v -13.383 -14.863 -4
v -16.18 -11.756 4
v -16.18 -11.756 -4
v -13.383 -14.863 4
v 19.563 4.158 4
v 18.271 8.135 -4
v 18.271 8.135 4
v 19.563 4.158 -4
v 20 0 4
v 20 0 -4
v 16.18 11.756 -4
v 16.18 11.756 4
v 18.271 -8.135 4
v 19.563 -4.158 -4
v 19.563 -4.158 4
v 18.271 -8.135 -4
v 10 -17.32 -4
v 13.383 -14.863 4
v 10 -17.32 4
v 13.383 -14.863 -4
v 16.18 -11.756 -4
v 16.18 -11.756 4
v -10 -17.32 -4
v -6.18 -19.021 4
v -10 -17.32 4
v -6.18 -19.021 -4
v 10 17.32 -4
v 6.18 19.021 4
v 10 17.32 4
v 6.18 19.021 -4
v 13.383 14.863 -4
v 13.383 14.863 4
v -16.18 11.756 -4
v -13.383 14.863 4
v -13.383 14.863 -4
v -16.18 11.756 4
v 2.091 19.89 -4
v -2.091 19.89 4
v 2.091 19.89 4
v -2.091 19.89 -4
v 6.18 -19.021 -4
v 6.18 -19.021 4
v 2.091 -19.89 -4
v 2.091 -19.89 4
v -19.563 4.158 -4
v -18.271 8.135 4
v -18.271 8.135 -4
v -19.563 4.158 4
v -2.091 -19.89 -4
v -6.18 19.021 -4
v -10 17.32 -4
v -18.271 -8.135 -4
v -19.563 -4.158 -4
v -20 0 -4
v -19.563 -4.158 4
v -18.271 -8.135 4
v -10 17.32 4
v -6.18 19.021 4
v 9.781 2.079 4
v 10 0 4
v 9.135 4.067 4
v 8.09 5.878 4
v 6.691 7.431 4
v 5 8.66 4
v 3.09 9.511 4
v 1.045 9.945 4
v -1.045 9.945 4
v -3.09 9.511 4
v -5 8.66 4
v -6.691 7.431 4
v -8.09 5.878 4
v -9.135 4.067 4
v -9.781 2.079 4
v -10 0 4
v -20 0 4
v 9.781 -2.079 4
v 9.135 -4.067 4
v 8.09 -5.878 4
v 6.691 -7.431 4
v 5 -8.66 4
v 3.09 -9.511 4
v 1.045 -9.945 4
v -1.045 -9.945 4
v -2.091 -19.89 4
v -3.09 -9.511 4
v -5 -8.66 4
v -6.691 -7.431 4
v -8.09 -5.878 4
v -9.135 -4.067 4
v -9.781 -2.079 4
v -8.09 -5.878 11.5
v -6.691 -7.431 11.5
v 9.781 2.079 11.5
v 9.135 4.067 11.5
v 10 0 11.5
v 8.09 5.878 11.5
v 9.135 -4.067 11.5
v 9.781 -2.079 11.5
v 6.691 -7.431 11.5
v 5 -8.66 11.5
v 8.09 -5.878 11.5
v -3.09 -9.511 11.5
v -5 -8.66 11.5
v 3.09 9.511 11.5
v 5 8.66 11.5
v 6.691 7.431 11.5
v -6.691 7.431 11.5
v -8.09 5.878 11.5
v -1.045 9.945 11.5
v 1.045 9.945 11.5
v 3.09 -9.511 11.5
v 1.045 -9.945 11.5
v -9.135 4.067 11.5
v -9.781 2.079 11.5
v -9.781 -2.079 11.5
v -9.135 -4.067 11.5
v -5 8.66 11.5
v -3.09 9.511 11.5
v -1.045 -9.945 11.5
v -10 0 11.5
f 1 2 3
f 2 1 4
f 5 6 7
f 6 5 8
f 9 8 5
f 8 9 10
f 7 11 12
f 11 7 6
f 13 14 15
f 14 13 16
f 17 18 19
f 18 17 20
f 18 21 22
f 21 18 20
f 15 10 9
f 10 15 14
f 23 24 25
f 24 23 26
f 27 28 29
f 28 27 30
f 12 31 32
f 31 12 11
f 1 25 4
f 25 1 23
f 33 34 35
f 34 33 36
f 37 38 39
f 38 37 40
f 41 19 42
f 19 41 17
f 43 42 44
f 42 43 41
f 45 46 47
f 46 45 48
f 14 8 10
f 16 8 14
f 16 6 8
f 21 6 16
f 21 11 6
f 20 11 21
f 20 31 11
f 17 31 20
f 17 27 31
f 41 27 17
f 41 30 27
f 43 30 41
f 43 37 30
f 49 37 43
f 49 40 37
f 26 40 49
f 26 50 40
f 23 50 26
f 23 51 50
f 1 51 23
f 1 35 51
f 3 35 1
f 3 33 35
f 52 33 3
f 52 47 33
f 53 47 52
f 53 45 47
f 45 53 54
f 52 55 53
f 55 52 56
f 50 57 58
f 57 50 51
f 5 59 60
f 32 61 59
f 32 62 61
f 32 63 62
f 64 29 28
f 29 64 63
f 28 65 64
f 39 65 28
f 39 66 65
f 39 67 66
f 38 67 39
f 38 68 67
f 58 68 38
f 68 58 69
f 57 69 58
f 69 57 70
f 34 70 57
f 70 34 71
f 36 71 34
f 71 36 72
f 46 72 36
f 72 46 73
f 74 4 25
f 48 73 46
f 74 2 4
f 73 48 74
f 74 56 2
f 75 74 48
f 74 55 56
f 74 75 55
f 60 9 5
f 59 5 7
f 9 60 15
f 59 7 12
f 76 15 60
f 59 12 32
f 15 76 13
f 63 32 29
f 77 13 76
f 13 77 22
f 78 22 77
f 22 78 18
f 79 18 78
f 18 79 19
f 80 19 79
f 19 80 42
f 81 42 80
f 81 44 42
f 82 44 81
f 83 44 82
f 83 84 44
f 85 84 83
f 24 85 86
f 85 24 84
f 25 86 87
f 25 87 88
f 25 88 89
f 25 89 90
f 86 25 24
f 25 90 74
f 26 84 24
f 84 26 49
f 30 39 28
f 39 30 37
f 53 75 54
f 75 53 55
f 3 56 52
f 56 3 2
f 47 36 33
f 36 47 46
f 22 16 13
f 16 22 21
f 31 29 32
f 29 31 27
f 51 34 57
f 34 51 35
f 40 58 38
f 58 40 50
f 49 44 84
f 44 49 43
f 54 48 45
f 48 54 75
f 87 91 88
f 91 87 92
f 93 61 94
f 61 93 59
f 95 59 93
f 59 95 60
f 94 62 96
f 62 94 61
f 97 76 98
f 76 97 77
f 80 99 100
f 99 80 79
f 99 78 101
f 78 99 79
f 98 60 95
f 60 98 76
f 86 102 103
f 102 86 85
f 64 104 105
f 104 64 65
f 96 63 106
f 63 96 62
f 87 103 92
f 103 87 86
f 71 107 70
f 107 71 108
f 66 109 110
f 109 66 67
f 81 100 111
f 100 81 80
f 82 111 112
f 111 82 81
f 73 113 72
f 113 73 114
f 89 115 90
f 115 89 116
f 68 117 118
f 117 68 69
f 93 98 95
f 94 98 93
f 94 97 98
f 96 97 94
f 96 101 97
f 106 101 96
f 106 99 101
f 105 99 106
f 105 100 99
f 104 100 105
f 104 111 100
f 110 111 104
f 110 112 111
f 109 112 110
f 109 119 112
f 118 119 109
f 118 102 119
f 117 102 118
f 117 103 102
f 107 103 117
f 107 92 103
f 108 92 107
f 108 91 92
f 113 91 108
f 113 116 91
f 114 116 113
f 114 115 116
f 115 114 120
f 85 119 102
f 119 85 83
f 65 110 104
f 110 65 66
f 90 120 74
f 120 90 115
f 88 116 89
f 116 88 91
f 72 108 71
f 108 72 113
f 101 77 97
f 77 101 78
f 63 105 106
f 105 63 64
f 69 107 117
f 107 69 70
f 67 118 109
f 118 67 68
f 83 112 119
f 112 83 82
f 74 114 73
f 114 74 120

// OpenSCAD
// Parameters for the central_hub
base_diameter = 40; // Diameter of the flat base
base_height = 8;    // Adjusted height of the flat base to make it thinner
raised_diameter = 20; // Diameter of the raised central section
raised_height = 15;   // Adjusted height of the raised central section to make it taller

// Central hub model
module central_hub() {
    // Base cylinder
    cylinder(h = base_height, d = base_diameter, center = true);
    
    // Raised central section
    translate([0, 0, base_height / 2])
        cylinder(h = raised_height, d = raised_diameter, center = true);
}

// Render the central hub
central_hub();
